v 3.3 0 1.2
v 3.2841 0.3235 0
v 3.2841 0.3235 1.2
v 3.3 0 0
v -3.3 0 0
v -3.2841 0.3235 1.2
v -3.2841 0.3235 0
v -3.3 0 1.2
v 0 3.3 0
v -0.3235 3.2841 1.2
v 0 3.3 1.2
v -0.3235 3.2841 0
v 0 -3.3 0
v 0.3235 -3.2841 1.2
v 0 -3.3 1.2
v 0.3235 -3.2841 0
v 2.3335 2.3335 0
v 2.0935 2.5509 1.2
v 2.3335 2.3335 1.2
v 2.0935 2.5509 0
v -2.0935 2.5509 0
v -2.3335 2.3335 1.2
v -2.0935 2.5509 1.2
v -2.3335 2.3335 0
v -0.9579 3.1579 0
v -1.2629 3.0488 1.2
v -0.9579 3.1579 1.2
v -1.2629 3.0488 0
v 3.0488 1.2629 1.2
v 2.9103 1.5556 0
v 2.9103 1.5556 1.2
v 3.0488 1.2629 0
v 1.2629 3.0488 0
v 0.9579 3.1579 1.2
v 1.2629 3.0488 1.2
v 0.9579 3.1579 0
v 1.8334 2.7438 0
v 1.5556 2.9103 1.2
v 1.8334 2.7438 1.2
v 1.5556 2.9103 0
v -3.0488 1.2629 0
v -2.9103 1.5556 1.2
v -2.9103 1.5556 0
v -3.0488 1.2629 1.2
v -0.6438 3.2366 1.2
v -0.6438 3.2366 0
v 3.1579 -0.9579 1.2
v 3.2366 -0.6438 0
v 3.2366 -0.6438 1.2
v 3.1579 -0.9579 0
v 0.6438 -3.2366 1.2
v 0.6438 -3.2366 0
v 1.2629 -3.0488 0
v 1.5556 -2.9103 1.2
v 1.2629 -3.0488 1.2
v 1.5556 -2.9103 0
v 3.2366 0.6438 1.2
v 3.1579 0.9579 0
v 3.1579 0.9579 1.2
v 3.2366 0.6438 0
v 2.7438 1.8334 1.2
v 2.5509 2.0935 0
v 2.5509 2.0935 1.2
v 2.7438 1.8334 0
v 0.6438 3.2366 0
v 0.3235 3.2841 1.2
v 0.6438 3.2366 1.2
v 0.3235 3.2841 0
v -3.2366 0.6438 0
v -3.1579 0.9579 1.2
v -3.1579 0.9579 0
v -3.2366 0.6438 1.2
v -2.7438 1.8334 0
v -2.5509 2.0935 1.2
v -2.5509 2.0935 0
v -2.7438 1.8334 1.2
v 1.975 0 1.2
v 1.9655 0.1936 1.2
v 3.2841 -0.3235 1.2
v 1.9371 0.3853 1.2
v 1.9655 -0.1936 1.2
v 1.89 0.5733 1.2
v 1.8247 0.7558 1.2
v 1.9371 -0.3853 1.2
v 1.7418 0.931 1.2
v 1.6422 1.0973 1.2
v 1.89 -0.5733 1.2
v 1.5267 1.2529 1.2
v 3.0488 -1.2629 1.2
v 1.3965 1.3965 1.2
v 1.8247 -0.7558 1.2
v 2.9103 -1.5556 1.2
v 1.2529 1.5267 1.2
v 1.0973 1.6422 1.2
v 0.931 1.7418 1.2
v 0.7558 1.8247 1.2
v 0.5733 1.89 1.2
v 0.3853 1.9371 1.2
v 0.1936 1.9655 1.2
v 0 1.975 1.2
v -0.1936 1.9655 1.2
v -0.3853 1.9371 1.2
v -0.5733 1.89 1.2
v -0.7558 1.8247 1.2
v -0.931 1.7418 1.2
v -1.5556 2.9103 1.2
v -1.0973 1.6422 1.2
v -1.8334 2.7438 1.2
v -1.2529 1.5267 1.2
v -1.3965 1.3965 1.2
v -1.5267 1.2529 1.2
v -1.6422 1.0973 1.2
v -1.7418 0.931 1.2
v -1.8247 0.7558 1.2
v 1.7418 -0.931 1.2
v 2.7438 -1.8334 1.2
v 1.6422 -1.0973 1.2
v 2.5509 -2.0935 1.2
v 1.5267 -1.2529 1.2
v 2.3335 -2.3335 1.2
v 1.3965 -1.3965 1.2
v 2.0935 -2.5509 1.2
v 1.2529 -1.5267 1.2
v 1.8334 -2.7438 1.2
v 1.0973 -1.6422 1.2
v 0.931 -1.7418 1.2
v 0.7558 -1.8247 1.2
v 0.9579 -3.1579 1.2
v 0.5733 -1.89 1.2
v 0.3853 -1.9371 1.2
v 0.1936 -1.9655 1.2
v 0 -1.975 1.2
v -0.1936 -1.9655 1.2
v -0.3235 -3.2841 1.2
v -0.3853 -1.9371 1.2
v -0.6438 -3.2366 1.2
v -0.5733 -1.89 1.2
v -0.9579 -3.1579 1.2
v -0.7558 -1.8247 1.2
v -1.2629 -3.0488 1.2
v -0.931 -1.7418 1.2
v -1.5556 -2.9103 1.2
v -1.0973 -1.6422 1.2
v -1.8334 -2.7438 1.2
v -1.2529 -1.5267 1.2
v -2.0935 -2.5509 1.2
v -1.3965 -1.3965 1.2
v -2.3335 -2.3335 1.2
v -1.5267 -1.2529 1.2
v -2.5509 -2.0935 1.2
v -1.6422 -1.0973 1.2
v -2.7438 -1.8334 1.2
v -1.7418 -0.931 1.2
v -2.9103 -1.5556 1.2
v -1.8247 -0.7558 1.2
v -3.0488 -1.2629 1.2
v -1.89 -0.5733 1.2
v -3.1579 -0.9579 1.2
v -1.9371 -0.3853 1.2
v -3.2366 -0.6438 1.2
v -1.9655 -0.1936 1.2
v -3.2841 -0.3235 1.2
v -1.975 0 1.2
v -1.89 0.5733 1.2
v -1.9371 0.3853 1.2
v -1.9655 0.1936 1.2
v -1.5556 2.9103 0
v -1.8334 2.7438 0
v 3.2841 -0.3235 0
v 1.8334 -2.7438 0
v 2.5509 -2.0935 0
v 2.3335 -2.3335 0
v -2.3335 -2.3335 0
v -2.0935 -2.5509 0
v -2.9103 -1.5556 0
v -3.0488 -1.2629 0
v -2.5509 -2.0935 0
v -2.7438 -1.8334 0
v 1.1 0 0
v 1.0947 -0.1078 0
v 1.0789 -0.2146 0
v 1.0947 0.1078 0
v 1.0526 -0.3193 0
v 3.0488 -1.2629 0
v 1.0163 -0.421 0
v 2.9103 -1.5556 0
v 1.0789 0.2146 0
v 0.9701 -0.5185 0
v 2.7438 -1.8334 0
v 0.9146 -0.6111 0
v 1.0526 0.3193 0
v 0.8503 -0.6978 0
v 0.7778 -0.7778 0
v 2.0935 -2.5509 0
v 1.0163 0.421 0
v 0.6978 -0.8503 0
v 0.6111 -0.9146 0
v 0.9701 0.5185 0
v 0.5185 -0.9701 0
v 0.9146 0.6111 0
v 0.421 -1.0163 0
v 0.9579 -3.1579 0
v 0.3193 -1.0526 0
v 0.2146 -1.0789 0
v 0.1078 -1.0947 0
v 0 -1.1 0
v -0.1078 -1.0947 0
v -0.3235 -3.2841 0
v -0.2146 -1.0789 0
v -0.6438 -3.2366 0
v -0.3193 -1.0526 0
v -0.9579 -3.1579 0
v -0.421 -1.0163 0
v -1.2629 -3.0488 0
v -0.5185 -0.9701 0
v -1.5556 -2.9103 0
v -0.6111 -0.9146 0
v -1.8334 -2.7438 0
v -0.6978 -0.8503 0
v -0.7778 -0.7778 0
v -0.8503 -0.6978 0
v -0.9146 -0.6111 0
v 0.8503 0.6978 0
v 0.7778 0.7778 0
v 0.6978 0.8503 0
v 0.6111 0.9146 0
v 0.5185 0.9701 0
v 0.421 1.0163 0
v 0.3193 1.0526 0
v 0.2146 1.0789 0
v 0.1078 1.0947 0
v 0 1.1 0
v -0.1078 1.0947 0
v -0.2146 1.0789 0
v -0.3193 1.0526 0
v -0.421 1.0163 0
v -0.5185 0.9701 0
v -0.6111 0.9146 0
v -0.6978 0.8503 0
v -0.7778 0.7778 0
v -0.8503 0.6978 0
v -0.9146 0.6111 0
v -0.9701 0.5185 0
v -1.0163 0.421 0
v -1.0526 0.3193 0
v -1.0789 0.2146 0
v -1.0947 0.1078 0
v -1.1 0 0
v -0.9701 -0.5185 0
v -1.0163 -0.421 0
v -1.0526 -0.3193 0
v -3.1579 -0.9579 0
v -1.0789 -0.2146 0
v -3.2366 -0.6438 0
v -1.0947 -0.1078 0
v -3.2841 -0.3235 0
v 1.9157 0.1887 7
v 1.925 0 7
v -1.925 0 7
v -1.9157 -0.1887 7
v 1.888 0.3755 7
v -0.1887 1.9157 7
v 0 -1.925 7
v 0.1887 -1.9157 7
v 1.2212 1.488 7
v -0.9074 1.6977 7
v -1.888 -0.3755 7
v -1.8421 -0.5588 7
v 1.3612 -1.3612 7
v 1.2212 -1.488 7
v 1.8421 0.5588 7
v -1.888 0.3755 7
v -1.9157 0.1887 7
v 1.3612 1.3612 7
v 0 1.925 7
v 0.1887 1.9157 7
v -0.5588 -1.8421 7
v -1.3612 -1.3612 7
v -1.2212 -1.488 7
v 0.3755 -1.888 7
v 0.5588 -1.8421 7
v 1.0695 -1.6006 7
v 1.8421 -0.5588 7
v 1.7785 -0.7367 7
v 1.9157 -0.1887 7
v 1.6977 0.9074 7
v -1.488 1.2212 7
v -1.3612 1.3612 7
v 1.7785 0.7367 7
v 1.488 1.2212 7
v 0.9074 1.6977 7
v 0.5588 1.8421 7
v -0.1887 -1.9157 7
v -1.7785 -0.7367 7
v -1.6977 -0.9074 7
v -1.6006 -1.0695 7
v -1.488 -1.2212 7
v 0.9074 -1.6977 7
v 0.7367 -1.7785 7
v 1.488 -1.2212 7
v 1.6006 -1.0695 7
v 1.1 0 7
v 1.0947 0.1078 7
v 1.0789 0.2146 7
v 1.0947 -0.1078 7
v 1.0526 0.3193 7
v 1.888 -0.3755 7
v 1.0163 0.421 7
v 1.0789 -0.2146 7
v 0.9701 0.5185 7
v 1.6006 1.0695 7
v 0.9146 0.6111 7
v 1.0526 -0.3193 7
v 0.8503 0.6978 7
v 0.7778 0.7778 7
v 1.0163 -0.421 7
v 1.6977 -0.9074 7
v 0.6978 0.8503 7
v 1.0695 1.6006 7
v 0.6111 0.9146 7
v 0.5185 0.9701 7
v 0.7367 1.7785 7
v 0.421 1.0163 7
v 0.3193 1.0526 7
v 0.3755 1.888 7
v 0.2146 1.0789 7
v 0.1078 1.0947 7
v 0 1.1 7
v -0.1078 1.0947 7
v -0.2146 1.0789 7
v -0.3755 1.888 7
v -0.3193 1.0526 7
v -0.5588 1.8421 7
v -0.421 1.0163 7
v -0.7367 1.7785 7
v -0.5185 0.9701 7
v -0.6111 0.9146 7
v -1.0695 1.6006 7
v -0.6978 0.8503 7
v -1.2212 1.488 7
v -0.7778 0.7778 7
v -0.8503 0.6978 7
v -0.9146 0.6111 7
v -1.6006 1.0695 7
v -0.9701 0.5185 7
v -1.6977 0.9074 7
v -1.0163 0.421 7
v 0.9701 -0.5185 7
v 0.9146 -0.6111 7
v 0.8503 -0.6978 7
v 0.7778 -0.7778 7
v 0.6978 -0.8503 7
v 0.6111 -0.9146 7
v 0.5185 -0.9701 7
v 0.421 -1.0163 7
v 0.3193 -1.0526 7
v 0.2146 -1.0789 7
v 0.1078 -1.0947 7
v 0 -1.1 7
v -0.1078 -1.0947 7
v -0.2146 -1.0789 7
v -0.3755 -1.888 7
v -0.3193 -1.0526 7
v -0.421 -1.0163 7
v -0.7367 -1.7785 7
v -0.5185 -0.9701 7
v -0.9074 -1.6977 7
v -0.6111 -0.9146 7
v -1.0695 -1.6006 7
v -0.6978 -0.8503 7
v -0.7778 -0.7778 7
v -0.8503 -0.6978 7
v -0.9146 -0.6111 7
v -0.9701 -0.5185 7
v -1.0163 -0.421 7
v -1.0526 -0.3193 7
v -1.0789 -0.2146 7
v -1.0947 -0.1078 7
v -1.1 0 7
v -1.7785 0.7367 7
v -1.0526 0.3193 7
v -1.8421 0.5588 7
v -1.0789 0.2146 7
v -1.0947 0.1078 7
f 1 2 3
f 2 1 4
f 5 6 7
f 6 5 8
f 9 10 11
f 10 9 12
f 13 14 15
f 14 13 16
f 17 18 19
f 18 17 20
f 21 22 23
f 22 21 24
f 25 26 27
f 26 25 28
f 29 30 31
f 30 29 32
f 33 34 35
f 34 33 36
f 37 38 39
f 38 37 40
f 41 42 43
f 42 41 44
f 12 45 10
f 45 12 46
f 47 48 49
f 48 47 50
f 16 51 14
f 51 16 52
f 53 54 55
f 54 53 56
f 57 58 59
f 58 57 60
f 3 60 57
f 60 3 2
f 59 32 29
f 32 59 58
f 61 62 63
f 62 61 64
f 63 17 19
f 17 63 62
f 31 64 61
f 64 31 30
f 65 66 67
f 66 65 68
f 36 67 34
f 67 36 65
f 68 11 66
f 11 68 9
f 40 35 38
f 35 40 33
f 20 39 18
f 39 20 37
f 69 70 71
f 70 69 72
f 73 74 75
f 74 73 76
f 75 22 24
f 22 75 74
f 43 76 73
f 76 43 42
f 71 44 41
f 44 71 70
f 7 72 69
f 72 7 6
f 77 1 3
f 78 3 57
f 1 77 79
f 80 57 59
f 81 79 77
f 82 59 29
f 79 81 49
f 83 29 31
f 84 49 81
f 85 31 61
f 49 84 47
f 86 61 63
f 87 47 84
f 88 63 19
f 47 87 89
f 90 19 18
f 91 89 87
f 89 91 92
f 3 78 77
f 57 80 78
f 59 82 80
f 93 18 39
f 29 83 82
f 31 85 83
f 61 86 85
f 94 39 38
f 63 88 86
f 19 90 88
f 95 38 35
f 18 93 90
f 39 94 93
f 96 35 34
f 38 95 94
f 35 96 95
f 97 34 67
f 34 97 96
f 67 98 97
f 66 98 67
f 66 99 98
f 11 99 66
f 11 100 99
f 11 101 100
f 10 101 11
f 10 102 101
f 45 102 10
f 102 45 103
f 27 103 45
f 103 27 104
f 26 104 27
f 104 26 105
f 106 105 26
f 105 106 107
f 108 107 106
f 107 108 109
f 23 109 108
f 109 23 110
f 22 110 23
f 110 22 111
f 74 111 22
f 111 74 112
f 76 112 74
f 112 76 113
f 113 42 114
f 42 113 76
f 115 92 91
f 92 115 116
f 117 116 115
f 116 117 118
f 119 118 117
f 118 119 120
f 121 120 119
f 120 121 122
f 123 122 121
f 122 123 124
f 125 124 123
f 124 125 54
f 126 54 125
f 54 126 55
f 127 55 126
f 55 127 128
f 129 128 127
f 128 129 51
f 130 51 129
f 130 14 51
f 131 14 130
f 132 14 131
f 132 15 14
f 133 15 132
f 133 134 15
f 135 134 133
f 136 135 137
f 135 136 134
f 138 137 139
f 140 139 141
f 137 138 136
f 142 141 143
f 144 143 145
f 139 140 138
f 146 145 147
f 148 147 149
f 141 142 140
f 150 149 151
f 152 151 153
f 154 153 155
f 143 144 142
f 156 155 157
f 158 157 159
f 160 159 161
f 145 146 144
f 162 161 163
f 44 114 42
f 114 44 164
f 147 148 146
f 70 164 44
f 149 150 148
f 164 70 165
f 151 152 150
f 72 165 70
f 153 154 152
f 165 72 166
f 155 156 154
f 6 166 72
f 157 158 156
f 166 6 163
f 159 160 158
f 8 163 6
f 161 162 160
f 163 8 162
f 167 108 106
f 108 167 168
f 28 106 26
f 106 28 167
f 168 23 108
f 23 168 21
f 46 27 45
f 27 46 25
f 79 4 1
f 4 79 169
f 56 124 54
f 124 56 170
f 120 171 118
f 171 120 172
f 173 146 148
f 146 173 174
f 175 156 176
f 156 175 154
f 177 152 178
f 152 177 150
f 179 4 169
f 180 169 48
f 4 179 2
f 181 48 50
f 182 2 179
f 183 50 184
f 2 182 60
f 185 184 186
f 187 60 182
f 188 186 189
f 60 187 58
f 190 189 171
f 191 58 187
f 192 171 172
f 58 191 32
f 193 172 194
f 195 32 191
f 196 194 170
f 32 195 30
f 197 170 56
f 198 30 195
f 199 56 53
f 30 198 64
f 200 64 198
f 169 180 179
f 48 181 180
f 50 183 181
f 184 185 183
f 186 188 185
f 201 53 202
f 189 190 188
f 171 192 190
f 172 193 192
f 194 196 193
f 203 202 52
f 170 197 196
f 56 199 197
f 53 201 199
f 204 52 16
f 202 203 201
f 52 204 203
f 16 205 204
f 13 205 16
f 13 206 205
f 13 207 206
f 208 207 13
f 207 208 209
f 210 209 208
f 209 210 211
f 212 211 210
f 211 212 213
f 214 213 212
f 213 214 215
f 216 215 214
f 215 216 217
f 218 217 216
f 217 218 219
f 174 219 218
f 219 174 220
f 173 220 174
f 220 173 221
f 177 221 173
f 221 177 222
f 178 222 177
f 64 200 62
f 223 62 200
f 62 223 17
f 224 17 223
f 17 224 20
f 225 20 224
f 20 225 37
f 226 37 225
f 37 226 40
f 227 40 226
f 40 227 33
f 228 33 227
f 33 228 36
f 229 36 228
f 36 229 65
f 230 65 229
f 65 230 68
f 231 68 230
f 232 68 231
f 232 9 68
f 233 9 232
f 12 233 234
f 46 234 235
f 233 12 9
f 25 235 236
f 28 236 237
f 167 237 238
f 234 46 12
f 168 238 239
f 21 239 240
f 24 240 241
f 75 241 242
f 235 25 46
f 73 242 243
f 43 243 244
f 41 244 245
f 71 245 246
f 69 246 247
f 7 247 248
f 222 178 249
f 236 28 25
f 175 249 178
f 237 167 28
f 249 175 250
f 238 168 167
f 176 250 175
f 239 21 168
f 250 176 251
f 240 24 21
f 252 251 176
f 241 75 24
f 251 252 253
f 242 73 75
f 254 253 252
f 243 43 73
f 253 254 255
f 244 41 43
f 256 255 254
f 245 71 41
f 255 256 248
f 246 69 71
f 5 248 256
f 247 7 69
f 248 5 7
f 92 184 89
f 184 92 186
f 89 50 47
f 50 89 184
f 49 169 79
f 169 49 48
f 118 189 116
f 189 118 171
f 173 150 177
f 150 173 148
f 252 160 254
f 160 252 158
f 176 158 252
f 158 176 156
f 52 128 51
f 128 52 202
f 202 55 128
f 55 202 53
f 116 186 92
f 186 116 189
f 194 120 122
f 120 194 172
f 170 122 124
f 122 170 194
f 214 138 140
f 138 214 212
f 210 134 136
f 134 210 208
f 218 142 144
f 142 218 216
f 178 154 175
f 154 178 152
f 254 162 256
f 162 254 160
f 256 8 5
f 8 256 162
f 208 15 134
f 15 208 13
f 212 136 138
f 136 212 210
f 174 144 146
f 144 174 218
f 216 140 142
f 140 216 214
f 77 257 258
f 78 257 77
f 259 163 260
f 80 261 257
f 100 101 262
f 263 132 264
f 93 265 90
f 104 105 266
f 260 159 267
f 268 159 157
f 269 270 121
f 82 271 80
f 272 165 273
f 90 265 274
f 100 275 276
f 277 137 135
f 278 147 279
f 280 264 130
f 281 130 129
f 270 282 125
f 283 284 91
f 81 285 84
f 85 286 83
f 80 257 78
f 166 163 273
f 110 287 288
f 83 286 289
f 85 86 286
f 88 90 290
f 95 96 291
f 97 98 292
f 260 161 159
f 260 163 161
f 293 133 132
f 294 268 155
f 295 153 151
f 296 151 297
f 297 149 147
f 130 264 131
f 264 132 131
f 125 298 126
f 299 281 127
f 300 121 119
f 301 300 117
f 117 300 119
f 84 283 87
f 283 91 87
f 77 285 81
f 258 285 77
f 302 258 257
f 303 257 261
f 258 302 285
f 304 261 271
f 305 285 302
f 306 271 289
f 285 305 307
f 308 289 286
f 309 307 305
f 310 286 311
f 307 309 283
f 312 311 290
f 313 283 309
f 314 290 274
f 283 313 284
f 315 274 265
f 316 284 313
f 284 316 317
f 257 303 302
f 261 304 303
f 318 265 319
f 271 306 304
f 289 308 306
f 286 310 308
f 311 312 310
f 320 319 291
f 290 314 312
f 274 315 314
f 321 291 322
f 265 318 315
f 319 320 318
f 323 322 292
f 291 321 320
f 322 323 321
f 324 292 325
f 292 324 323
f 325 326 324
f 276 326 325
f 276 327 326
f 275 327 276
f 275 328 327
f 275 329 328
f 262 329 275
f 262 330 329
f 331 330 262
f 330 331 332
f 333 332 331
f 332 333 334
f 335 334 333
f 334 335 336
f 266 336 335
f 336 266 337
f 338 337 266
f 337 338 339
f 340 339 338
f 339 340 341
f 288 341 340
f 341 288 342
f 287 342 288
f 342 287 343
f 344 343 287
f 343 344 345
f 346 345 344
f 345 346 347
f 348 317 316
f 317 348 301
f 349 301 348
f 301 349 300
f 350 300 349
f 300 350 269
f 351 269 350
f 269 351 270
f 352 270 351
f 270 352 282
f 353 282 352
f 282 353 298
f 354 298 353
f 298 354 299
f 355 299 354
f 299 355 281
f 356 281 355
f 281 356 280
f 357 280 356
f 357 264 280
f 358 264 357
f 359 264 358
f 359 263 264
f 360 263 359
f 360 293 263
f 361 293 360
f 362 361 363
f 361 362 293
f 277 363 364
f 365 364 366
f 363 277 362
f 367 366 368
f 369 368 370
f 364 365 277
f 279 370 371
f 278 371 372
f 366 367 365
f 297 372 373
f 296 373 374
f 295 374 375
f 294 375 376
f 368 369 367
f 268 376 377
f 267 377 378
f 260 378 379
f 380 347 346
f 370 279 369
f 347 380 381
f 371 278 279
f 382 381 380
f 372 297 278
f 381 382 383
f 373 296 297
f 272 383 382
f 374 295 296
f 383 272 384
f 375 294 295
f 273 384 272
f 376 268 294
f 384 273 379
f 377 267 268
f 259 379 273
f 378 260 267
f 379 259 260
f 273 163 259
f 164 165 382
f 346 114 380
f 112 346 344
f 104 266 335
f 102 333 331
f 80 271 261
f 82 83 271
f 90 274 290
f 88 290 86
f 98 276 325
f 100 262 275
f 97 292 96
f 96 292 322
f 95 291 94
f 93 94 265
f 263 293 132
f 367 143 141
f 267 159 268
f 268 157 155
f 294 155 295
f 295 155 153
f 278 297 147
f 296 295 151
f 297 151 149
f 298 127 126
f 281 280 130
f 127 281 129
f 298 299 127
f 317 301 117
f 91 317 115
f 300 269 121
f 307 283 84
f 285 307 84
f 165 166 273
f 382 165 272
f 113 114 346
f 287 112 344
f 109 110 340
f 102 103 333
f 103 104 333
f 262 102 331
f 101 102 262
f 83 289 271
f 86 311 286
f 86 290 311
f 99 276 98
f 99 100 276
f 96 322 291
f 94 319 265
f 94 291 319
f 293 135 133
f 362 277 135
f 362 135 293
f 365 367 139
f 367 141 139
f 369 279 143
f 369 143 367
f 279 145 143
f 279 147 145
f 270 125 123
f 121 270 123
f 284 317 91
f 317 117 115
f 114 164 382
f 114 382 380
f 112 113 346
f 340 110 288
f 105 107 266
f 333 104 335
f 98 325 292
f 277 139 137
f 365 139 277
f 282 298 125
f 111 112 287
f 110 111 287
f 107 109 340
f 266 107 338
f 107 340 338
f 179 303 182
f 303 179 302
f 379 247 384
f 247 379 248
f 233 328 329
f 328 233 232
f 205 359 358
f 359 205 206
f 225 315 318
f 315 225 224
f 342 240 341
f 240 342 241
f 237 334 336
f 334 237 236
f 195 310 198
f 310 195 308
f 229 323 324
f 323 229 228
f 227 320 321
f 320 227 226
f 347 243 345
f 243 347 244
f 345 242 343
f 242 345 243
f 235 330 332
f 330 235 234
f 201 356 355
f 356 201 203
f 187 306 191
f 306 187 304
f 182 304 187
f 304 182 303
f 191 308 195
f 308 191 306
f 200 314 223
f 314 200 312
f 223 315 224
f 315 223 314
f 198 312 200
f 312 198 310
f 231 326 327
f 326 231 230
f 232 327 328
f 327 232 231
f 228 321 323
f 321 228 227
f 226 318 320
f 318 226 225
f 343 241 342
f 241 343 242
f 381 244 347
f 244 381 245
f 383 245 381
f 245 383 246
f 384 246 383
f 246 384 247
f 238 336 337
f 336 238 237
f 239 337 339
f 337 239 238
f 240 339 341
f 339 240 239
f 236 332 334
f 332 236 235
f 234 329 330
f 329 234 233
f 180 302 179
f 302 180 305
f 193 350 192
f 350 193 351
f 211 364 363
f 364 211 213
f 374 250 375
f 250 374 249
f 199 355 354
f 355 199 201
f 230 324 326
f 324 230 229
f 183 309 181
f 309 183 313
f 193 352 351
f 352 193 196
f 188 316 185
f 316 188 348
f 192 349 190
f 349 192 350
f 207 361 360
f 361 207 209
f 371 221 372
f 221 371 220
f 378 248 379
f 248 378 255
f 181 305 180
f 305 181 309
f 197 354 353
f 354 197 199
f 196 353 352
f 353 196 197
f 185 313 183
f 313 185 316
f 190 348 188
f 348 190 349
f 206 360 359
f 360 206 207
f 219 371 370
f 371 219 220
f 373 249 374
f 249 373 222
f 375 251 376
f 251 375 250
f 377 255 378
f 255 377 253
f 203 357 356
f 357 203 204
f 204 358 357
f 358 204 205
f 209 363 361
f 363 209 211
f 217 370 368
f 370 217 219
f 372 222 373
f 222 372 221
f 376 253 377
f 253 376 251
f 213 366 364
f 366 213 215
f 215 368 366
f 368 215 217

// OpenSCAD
// OpenSCAD 2021.01 compatible
// Press-fit reducer inserts / bushings for existing 4.0 mm holes
//
// Purpose:
// - drop into an existing 4.0 mm printed hole
// - top flange prevents the insert from falling through
// - inner hole fits ~2.0 mm screws with easy clearance
//
// Default design intent:
// - outside body slightly undersized for a printed 4.0 mm hole
// - light taper helps insertion
// - flange keeps the insert from dropping through
//
// Print a few test pieces first and tweak body diameters if needed.

$fn = 64;

// -----------------------------
// User parameters
// -----------------------------
existing_hole_d       = 4.0;   // hole already in your printed part
plate_thickness       = 7.0;   // thickness of the part the insert sits in

// Fit / bushing geometry
body_d_top            = 3.95;  // near the flange
body_d_bottom         = 3.85;  // small taper for easier insertion
flange_d              = 6.6;   // larger than 4 mm hole so it cannot fall through
flange_thickness      = 1.2;   // top lip thickness
lead_in_chamfer_h     = 0.8;   // little taper at the bottom

// Screw clearance
screw_clear_d         = 2.2;   // good starting point for 2.0 mm screw to turn freely

// Batch layout for printing
insert_count          = 1;
insert_spacing        = 9.0;   // distance between insert centers in print layout

// -----------------------------
// Derived
// -----------------------------
body_h = max(0.1, plate_thickness - flange_thickness);

// -----------------------------
// Geometry
// -----------------------------
module insert_single() {
    difference() {
        union() {
            // flange
            cylinder(h = flange_thickness, d = flange_d);

            // main body
            translate([0, 0, flange_thickness])
                cylinder(h = body_h, d1 = body_d_top, d2 = body_d_bottom);

            // small lead-in chamfer at bottom
            translate([0, 0, flange_thickness + body_h - lead_in_chamfer_h])
                cylinder(h = lead_in_chamfer_h, d1 = body_d_bottom, d2 = max(0.2, body_d_bottom - 0.35));
        }

        // through hole for the screw
        translate([0, 0, -1])
            cylinder(h = plate_thickness + 3, d = screw_clear_d);
    }
}

module insert_array() {
    for (i = [0 : insert_count - 1]) {
        translate([i * insert_spacing, 0, 0])
            insert_single();
    }
}

// Uncomment ONE of these if you want a different output:
// insert_single();
insert_array();
